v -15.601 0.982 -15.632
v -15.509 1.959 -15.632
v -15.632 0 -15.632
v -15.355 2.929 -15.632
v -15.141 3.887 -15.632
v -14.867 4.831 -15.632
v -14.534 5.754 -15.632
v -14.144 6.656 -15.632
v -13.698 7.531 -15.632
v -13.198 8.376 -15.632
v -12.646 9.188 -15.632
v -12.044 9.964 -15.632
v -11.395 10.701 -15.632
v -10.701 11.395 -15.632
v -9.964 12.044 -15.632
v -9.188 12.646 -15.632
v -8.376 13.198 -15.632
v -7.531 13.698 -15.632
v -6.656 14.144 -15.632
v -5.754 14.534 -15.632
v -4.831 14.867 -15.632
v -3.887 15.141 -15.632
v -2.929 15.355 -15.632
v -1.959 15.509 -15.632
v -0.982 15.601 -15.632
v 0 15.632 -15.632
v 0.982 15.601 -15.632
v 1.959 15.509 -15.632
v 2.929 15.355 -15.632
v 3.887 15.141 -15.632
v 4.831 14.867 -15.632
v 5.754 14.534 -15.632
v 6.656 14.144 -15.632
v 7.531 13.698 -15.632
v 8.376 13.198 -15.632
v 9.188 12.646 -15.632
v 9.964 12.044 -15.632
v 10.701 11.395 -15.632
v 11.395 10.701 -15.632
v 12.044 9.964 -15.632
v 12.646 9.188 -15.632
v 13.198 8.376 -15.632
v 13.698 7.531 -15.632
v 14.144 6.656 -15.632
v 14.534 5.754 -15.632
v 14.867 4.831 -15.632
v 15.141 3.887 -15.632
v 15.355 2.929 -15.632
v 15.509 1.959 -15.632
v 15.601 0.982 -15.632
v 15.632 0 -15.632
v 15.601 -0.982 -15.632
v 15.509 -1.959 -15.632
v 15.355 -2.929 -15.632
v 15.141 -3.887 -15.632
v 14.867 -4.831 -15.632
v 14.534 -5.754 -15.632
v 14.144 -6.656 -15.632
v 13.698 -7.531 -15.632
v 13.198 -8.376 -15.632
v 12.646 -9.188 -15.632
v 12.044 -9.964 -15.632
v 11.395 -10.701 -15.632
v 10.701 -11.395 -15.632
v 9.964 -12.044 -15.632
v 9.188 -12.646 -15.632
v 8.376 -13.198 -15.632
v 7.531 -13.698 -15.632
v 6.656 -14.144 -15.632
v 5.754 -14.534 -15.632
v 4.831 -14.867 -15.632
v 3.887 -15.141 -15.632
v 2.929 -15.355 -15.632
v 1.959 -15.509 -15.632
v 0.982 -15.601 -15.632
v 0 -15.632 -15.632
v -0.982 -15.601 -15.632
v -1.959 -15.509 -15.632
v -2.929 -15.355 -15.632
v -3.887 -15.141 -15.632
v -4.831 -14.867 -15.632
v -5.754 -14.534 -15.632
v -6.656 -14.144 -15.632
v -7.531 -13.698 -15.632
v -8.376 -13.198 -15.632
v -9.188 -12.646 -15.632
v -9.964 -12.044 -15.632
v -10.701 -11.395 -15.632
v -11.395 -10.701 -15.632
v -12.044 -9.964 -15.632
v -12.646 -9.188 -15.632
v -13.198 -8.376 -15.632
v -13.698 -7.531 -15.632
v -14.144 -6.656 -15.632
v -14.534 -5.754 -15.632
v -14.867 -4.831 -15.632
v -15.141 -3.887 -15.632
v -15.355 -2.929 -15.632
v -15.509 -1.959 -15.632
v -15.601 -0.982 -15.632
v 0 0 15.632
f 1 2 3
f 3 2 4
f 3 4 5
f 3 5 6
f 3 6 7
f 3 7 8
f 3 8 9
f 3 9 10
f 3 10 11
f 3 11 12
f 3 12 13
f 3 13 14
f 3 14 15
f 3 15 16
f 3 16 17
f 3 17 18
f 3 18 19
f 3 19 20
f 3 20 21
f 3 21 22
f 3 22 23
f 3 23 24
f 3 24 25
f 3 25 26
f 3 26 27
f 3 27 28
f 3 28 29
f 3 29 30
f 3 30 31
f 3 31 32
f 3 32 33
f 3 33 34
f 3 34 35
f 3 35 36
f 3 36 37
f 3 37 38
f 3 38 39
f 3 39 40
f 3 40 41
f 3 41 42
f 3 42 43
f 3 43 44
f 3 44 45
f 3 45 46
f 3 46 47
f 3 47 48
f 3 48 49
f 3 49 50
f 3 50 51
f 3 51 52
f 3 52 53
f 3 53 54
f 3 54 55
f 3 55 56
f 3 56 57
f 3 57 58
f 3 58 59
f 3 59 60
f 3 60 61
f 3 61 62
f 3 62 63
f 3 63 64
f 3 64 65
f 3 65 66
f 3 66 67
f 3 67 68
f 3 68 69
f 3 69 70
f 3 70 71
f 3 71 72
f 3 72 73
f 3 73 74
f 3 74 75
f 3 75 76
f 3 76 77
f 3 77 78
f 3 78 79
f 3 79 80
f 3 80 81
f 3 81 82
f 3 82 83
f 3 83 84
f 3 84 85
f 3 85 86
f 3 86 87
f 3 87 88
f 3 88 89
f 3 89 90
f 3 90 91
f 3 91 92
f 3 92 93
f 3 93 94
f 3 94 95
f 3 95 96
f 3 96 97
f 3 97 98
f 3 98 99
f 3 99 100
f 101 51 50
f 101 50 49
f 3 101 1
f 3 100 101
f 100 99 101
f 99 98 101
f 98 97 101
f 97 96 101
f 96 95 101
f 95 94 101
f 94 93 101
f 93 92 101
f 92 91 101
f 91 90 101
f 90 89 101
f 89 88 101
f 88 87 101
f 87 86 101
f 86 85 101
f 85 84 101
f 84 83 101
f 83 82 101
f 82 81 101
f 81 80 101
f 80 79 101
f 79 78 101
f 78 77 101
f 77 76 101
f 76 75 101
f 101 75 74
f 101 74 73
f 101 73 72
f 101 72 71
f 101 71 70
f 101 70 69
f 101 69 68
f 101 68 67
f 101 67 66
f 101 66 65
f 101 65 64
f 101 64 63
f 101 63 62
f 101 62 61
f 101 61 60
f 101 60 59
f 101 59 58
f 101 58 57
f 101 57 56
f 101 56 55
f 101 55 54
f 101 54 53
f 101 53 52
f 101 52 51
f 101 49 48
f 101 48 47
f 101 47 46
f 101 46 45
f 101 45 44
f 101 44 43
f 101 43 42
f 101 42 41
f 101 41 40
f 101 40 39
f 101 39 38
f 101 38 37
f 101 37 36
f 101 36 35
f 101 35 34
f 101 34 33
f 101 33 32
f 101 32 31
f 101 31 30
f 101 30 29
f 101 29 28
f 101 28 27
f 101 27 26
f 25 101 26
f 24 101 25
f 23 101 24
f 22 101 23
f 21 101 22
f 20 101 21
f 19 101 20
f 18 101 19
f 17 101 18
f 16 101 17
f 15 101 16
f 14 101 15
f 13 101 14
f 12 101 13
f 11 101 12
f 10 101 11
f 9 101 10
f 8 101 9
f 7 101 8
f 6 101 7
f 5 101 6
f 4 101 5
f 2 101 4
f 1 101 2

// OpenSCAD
$fn=100;

volume=8000.0;

height_to_base_ratio = 1;

r=pow(3 * volume / PI / height_to_base_ratio / 2, 1/3.0);
h=height_to_base_ratio * r * 2;
v=PI*pow(r,2)*h/3.0;
echo("height=", h);
echo("2*r=", 2*r);
echo("v=", v);
cylinder(h, r, 0, center = true);
